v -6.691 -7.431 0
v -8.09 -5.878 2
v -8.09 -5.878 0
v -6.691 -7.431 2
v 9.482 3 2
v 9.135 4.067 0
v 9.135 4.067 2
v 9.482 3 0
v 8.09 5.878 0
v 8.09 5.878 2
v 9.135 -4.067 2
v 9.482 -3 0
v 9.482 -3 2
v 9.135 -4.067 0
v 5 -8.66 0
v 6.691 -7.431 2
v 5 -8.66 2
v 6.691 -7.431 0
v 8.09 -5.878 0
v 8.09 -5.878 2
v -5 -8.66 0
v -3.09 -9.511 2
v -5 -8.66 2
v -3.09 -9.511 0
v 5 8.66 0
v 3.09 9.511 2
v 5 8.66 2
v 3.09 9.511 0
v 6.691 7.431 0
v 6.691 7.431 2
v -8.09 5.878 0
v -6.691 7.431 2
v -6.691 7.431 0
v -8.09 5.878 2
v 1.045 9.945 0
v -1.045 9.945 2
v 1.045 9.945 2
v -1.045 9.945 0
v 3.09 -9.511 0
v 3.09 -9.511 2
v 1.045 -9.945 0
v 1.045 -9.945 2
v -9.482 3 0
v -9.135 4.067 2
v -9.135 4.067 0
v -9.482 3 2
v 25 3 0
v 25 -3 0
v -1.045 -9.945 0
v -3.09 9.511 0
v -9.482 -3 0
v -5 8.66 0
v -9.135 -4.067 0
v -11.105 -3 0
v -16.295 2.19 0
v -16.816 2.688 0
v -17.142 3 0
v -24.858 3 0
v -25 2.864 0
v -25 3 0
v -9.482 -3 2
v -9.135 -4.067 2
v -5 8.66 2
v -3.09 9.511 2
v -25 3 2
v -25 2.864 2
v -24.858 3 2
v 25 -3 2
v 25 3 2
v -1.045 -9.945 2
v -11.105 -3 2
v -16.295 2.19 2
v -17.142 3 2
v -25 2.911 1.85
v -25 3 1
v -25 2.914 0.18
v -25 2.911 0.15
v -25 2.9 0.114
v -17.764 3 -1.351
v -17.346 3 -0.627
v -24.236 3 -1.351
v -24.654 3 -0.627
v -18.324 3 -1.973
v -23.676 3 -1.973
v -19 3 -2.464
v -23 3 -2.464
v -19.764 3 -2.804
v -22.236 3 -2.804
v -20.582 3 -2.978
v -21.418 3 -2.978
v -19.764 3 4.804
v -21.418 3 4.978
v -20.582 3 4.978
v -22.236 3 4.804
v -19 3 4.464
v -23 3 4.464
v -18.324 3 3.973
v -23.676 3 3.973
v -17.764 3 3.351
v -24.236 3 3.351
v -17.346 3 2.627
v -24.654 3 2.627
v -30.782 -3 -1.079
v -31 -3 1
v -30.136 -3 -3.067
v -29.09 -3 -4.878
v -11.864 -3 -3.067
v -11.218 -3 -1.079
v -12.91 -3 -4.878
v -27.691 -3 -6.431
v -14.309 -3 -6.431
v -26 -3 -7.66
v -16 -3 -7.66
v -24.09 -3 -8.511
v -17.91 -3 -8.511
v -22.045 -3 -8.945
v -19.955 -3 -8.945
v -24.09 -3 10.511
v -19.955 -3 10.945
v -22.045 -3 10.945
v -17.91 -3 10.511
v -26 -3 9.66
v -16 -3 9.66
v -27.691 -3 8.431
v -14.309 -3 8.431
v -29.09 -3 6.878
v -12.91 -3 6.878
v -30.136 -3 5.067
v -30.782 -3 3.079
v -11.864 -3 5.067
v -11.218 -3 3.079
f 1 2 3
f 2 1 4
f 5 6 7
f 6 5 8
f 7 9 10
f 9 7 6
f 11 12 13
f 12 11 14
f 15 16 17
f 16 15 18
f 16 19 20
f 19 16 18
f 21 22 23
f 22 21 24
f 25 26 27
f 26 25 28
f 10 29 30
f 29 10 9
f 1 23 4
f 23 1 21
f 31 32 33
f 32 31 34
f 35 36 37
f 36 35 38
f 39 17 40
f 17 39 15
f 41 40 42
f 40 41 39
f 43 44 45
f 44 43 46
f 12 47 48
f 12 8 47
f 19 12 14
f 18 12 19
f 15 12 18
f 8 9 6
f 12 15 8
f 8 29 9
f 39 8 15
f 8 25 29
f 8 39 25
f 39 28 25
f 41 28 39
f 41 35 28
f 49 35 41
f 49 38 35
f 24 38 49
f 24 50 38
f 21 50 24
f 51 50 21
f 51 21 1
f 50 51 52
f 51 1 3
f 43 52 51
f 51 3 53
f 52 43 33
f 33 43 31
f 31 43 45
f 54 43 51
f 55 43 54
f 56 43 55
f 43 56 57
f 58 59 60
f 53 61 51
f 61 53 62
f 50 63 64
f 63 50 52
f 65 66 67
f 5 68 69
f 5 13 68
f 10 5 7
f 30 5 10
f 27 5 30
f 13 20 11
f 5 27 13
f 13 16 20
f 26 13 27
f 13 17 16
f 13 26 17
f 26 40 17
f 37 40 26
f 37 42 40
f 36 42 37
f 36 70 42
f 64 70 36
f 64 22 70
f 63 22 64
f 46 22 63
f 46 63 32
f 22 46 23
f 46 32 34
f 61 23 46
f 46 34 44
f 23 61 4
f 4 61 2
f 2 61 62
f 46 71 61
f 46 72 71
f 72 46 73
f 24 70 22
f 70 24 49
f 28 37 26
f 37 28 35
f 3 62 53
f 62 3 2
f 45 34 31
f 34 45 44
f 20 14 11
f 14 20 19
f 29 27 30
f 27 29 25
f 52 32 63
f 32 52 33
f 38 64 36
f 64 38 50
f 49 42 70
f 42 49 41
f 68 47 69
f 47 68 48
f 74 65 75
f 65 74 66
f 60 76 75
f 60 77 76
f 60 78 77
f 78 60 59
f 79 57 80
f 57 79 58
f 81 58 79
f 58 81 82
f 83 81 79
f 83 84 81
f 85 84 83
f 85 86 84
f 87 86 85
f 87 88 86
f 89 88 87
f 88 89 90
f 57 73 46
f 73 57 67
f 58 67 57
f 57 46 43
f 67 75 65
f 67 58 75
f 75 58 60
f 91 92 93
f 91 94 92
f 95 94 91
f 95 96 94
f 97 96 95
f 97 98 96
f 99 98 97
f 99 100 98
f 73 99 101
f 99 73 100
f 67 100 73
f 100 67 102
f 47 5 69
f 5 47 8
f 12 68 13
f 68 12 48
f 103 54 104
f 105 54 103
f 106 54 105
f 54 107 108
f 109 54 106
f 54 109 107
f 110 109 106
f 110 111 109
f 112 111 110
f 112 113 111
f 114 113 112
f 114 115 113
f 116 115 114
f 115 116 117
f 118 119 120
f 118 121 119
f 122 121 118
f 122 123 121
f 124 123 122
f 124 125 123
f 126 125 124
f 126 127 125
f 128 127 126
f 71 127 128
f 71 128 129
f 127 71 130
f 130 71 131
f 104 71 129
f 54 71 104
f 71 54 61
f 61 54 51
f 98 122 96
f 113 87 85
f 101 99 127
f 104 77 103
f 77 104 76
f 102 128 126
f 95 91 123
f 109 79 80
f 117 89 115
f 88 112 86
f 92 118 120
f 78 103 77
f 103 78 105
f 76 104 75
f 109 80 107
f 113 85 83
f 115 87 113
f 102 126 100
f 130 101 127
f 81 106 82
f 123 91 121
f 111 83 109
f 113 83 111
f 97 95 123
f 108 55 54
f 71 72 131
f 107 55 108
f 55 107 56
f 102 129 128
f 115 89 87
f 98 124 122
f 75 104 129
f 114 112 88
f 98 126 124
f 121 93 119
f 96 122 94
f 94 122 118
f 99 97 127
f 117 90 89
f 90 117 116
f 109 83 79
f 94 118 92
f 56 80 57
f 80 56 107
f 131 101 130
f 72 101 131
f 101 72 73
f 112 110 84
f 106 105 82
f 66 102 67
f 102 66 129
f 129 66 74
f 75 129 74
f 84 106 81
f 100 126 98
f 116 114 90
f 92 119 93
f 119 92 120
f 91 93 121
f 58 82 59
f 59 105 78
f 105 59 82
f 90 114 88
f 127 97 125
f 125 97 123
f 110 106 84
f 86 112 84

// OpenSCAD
// Parameters for the key-shaped flat piece
key_thickness = 2; // Reduced thickness of the piece to match the original model
circle_diameter = 20; // Diameter of the circular head remains unchanged
rect_length = 50; // Length of the rectangular tail increased to match the original model
rect_width = 6; // Width of the rectangular tail reduced to match the original model
transition_radius = 4; // Increased radius for a smoother transition between the circular head and rectangular tail

module key_shaped_flat_piece() {
    // Circular head
    translate([0, 0, key_thickness / 2])
    cylinder(h = key_thickness, r = circle_diameter / 2, center = true);

    // Rectangular tail
    translate([-rect_length / 2, -rect_width / 2, 0])
    cube([rect_length, rect_width, key_thickness], center = false);

    // Smooth transition between circular head and rectangular tail
    translate([-rect_length / 2 + transition_radius, 0, key_thickness / 2])
    rotate([90, 0, 0])
    cylinder(h = rect_width, r1 = transition_radius, r2 = circle_diameter / 2, center = true);
}

// Generate the model
key_shaped_flat_piece();
